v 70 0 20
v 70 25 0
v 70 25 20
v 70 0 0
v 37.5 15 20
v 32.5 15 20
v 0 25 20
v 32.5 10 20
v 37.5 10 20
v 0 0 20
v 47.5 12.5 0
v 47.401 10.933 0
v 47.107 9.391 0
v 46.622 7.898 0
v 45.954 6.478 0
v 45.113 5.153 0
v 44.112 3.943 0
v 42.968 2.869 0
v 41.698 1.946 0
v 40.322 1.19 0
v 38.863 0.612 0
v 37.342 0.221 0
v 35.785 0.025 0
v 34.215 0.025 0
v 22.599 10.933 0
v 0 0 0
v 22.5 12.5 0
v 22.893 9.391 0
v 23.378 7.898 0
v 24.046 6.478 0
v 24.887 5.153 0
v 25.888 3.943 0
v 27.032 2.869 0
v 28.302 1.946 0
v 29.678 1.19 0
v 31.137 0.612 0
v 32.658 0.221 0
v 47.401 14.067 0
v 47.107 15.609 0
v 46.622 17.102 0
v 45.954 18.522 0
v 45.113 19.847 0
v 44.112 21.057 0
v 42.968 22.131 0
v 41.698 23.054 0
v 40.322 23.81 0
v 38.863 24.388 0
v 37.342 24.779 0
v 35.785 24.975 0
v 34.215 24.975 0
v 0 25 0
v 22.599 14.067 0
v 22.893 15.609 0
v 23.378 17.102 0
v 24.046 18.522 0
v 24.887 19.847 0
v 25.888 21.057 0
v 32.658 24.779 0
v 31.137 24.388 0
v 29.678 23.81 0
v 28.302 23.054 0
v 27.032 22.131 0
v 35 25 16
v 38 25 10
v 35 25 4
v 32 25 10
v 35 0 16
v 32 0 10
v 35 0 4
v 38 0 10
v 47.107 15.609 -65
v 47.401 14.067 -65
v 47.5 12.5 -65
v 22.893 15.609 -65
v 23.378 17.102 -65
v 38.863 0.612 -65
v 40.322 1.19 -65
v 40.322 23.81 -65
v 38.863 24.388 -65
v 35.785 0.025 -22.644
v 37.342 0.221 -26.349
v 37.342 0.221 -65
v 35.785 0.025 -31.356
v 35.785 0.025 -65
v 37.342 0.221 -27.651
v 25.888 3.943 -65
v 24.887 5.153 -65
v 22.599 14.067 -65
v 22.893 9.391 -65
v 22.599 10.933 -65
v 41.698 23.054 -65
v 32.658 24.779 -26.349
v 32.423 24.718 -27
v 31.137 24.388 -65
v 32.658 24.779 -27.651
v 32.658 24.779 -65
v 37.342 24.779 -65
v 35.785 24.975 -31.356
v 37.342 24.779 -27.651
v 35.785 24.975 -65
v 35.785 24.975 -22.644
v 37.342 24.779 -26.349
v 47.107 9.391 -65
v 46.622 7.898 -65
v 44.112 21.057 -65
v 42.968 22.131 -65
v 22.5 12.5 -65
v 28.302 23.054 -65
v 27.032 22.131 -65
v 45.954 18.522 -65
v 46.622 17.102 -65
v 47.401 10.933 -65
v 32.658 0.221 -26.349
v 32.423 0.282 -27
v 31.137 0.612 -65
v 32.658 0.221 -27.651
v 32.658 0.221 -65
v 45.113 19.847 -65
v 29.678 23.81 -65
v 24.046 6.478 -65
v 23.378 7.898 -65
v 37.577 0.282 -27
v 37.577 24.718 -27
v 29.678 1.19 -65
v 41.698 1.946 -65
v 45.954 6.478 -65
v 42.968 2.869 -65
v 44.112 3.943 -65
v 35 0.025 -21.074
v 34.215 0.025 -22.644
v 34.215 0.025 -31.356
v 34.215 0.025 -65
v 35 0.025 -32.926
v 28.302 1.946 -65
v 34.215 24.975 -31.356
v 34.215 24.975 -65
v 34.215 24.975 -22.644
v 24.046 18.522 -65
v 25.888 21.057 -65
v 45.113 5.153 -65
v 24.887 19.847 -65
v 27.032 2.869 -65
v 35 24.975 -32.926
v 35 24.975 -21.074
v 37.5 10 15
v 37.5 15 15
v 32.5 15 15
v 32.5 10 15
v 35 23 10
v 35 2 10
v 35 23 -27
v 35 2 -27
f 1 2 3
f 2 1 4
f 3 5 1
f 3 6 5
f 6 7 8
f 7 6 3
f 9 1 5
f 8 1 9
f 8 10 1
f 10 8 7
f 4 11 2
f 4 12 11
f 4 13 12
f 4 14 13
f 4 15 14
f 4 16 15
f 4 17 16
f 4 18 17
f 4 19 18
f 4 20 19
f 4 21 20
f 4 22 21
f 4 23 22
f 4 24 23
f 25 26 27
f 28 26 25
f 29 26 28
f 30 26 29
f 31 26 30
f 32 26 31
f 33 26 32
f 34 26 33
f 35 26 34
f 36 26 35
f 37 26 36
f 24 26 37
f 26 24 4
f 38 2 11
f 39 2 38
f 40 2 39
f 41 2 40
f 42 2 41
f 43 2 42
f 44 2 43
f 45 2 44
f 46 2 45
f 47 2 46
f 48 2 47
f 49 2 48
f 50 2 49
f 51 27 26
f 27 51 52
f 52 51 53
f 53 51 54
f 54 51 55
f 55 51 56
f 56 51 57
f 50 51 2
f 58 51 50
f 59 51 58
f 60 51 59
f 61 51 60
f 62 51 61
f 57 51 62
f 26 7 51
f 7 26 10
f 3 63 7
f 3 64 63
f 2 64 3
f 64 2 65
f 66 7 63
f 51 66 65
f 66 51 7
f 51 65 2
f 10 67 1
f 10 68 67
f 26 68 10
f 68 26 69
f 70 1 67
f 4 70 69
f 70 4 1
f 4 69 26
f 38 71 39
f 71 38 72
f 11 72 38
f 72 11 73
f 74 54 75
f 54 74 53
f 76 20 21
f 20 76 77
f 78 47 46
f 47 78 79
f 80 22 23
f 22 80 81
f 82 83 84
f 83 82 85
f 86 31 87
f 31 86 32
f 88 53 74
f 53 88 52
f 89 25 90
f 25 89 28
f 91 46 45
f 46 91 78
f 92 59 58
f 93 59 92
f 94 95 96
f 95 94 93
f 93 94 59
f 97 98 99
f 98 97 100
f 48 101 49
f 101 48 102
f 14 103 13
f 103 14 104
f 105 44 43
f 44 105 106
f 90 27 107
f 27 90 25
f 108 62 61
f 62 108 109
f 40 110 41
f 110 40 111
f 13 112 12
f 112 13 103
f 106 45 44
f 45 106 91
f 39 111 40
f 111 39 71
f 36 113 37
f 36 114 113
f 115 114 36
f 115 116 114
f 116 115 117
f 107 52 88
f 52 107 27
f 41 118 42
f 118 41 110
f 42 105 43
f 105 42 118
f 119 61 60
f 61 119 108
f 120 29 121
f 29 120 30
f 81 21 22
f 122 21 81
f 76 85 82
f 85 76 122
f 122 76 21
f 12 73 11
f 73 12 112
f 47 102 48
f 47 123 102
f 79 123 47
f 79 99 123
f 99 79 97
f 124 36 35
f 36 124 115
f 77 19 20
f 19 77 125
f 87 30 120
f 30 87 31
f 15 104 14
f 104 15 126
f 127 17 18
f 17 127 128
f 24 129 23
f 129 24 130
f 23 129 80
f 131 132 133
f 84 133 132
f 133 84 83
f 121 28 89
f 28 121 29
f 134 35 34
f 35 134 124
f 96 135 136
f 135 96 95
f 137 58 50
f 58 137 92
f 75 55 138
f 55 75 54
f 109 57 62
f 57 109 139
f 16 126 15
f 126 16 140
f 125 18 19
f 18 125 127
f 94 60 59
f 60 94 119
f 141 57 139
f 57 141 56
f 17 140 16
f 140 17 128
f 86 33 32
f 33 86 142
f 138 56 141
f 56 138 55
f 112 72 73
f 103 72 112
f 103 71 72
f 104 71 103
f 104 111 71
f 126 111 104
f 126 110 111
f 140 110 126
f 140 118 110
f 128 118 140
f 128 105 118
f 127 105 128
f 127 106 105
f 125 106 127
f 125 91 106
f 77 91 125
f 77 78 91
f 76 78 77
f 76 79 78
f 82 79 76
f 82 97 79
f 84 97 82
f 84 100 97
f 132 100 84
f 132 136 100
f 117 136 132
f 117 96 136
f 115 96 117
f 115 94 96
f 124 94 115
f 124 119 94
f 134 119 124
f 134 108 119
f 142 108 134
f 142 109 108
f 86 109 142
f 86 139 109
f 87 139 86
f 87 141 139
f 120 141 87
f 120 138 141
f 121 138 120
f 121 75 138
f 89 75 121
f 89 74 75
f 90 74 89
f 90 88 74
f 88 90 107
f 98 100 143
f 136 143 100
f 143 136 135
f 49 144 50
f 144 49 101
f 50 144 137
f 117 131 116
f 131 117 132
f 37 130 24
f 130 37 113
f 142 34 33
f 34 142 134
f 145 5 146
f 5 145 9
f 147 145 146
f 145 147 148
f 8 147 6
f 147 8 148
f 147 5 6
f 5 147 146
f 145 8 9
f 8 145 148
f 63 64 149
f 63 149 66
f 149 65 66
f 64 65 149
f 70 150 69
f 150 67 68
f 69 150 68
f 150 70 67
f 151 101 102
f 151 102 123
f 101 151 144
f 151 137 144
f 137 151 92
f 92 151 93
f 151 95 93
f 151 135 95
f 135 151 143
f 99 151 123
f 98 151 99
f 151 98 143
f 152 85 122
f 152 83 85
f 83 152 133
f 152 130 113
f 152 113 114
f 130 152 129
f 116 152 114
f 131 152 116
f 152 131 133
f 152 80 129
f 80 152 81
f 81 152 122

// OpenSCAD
// file: diamond.scad
$fn=50;

module diamond() {
    polyhedron(points = [[0, 0, 0], 
    [3, 0, 6], [0, 2, 6], [-3, 0, 6], [0, -2, 6],
    [0, 0, 12]],
    faces = [
        [0, 1, 2], [0, 2, 3], [0, 3, 4], [0, 4, 1],
        [5, 2, 1], [5, 3, 2], [5, 4, 3], [5, 1, 4]
    ]);
}

for(i = [0: 1: 3]) {
    translate([20 * i, 0, 0]) diamond();
}
// main file
$fn=50;

use <diamond.scad>

//hilt
difference() {
    union() {
        cube([70, 25, 20]);
        translate([35, 12.5, -65]) cylinder(h = 65, d=25);
    }
    //hole for the dagger
    #translate([32.5, 10, 15]) cube([5, 5, 5]);
    //holes for the diamonds
    translate([35, 25, 4]) diamond();
    translate([35, 0, 4]) diamond();
    translate([35, 25, -33]) diamond();
    translate([35, 0, -33]) diamond();
}
